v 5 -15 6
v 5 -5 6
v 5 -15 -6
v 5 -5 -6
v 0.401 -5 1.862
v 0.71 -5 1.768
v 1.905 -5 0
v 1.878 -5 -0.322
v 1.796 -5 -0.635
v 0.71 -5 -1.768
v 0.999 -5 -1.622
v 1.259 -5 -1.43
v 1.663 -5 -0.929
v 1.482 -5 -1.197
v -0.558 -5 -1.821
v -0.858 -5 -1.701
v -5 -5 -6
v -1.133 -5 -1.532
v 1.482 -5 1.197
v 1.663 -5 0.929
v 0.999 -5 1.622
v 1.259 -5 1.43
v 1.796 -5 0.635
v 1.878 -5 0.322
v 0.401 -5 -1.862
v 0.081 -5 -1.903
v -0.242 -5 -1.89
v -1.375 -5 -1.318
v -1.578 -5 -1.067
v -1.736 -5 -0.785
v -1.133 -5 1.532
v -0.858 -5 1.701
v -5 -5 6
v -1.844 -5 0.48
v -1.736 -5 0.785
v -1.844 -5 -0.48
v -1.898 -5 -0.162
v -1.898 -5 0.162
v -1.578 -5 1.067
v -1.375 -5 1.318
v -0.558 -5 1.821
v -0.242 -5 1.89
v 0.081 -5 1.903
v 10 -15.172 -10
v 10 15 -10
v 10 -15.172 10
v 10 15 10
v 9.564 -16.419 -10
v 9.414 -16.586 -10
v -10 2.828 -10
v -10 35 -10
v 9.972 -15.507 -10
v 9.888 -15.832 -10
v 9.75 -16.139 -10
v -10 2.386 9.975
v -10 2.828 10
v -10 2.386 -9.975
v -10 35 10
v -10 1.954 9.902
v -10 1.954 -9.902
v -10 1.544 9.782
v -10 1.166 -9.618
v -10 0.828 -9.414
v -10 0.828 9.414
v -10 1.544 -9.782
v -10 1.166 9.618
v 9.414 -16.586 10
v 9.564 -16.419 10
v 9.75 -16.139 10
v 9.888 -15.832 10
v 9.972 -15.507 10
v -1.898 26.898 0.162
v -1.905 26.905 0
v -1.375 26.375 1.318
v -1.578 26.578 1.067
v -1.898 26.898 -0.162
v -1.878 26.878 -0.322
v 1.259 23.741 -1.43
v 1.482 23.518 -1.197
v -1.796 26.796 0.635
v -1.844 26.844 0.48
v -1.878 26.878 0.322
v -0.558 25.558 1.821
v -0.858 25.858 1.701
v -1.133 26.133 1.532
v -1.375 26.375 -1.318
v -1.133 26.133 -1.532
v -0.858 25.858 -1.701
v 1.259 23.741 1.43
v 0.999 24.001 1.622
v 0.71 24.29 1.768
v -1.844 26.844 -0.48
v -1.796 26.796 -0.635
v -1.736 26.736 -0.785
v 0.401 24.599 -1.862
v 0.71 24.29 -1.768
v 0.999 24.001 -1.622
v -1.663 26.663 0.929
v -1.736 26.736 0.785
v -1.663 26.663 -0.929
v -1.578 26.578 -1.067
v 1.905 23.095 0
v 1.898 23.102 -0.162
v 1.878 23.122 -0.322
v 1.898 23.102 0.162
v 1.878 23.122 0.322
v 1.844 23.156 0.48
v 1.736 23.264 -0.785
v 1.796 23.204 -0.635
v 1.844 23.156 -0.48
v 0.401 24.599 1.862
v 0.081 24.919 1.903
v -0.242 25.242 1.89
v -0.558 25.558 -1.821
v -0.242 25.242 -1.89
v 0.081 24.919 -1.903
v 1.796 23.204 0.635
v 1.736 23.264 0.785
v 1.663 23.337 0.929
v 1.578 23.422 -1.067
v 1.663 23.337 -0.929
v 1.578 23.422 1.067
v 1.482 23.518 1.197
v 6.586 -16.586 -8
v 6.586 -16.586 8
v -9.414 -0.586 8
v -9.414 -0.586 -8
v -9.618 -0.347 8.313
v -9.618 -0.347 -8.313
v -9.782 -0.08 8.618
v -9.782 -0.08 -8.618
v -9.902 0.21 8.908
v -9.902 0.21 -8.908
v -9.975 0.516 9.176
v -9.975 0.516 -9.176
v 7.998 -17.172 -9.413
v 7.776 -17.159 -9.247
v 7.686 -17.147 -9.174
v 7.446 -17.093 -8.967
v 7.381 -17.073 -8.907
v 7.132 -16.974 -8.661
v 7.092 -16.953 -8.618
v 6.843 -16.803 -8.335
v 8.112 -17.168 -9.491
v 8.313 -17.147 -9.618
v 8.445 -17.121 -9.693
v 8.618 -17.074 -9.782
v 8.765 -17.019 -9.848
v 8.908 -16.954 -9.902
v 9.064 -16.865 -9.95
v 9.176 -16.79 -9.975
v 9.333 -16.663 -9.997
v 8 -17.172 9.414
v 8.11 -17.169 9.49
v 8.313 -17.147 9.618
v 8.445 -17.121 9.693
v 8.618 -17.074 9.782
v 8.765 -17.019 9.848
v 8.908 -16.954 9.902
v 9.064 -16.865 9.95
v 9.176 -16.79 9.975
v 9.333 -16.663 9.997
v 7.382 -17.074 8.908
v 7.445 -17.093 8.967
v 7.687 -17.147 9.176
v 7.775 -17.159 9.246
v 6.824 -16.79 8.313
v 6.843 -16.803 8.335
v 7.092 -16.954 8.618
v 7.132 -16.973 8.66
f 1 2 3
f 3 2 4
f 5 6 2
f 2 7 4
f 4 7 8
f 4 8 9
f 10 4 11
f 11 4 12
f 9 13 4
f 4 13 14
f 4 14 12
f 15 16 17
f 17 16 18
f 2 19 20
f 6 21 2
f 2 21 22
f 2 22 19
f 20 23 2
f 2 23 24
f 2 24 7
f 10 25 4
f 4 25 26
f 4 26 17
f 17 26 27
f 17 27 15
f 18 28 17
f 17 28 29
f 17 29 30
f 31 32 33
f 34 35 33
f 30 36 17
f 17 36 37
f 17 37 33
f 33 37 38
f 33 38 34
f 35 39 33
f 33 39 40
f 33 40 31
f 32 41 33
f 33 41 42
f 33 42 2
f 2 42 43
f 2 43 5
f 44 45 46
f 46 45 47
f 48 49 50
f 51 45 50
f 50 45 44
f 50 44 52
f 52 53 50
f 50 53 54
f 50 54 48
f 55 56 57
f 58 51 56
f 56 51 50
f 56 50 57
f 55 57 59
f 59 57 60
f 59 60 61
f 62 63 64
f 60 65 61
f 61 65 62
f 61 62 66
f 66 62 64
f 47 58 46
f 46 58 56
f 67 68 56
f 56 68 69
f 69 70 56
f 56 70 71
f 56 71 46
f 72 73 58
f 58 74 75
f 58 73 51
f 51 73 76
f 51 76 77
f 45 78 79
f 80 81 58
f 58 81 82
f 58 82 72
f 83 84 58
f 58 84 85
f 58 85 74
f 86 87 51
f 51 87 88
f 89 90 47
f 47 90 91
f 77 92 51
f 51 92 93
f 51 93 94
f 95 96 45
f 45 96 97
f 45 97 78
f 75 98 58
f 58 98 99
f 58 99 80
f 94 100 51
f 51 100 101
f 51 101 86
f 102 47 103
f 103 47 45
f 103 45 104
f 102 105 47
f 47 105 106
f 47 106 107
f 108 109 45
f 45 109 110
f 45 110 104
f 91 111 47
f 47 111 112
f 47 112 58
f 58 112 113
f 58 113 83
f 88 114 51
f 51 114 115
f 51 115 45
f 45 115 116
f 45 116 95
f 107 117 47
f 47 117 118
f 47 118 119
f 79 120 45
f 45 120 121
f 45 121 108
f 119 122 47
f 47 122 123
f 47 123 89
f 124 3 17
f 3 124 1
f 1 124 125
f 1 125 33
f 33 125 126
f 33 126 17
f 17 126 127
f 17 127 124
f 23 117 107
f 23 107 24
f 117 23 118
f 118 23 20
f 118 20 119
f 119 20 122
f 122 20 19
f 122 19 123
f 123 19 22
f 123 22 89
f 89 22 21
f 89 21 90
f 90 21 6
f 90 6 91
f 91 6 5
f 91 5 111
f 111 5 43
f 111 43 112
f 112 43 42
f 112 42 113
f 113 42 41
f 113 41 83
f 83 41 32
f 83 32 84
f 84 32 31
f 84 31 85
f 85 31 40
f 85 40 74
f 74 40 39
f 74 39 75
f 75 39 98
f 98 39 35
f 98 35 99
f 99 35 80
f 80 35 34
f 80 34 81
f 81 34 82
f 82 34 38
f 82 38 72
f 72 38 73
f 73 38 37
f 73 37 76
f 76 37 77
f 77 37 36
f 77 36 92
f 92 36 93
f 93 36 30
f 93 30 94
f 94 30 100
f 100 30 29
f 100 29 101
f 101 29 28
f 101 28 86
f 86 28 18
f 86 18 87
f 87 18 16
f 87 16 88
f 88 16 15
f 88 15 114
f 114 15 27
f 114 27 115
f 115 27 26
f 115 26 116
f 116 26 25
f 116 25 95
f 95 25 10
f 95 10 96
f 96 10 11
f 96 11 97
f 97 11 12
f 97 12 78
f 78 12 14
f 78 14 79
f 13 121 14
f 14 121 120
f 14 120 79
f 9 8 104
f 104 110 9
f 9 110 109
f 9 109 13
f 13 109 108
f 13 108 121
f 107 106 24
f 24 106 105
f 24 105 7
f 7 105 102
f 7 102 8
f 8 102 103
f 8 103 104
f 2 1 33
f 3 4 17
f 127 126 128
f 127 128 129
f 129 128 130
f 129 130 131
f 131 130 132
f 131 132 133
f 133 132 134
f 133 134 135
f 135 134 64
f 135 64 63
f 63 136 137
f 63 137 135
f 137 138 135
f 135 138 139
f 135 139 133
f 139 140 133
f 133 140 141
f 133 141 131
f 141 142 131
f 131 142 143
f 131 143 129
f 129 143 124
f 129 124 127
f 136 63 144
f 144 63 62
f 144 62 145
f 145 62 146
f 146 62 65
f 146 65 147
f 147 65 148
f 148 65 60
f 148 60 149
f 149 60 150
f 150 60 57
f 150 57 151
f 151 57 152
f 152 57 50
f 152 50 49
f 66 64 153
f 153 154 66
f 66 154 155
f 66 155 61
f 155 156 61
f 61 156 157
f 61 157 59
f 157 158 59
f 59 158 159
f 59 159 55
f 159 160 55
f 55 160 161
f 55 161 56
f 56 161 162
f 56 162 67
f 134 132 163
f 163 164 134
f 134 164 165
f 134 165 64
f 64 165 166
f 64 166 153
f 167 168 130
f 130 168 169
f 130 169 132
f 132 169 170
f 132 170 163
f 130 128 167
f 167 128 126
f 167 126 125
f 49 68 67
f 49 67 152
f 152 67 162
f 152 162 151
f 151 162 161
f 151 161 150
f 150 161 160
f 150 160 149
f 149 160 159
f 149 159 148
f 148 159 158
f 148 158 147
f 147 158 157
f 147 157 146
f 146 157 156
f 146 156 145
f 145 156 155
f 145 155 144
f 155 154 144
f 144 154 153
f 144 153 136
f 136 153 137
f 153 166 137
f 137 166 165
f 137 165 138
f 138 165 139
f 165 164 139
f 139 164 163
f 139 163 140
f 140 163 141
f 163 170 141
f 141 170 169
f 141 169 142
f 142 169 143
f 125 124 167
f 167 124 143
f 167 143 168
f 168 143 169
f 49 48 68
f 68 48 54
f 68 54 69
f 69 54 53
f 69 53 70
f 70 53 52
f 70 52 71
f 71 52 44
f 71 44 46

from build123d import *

# Parameters (mm, degrees)
SKETCH1_W           = 20
SKETCH1_H           = 20
BOSS_EXTRUDE1_DEPTH = 15
BOSS_EXTRUDE2_DEPTH = 20
CUT_EXTRUDE1_DEPTH  = 42.533119315
SKETCH4_R           = 1.905
CUT_EXTRUDE2_DEPTH  = 43.426406871
BOSS_EXTRUDE3_DEPTH = 4
BOSS_EXTRUDE4_DEPTH = 4
FILLET1_R           = 2


with BuildPart() as part:
    # Sketch1 → Boss-Extrude1 (new body)
    with BuildSketch(Plane(origin=(0, 0, 0), x_dir=(1, 0, 0), z_dir=(0, 1, 0))):
        Rectangle(SKETCH1_W, SKETCH1_H)
    extrude(amount=BOSS_EXTRUDE1_DEPTH)

    # Sketch2 → Boss-Extrude2 (add)
    with BuildSketch(Plane.XY.offset(10)):
        Polygon((10, 15), (-10, 35), (-10, 15), align=None)
        Polygon((-10, 0), (10, -20), (10, 0), align=None)
    extrude(amount=-BOSS_EXTRUDE2_DEPTH)

    # Sketch3 → Cut-Extrude1 (cut, through all)
    with BuildSketch(Plane(origin=(0, 0, -10), x_dir=(-1, 0, 0), z_dir=(0, 0, -1))):
        Polygon((-5, -15), (-5, -5), (5, -5), align=None)
    extrude(amount=-CUT_EXTRUDE1_DEPTH, mode=Mode.SUBTRACT)

    # Sketch4 → Cut-Extrude2 (cut, through all)
    with BuildSketch(Plane.XZ.offset(5)):
        Circle(SKETCH4_R)
    extrude(amount=-CUT_EXTRUDE2_DEPTH, mode=Mode.SUBTRACT)

    # Sketch5 → Boss-Extrude3 (add)
    with BuildSketch(Plane.XY.offset(10)):
        Polygon((5, -5), (5, -15), (-5, -5), align=None)
    extrude(amount=-BOSS_EXTRUDE3_DEPTH)

    # Sketch6 → Boss-Extrude4 (add)
    with BuildSketch(Plane(origin=(0, 0, -10), x_dir=(-1, 0, 0), z_dir=(0, 0, -1))):
        Polygon((5, -5), (-5, -5), (-5, -15), align=None)
    extrude(amount=-BOSS_EXTRUDE4_DEPTH)

    # Fillet1
    fillet1_edges = [part.edges().sort_by_distance(p)[0] for p in [
        (10, -20, 0),
        (0, -10, 10),
        (0, -10, -10),
        (-10, 0, 0),
    ]]
    fillet(fillet1_edges, radius=FILLET1_R)


solid = part.part
